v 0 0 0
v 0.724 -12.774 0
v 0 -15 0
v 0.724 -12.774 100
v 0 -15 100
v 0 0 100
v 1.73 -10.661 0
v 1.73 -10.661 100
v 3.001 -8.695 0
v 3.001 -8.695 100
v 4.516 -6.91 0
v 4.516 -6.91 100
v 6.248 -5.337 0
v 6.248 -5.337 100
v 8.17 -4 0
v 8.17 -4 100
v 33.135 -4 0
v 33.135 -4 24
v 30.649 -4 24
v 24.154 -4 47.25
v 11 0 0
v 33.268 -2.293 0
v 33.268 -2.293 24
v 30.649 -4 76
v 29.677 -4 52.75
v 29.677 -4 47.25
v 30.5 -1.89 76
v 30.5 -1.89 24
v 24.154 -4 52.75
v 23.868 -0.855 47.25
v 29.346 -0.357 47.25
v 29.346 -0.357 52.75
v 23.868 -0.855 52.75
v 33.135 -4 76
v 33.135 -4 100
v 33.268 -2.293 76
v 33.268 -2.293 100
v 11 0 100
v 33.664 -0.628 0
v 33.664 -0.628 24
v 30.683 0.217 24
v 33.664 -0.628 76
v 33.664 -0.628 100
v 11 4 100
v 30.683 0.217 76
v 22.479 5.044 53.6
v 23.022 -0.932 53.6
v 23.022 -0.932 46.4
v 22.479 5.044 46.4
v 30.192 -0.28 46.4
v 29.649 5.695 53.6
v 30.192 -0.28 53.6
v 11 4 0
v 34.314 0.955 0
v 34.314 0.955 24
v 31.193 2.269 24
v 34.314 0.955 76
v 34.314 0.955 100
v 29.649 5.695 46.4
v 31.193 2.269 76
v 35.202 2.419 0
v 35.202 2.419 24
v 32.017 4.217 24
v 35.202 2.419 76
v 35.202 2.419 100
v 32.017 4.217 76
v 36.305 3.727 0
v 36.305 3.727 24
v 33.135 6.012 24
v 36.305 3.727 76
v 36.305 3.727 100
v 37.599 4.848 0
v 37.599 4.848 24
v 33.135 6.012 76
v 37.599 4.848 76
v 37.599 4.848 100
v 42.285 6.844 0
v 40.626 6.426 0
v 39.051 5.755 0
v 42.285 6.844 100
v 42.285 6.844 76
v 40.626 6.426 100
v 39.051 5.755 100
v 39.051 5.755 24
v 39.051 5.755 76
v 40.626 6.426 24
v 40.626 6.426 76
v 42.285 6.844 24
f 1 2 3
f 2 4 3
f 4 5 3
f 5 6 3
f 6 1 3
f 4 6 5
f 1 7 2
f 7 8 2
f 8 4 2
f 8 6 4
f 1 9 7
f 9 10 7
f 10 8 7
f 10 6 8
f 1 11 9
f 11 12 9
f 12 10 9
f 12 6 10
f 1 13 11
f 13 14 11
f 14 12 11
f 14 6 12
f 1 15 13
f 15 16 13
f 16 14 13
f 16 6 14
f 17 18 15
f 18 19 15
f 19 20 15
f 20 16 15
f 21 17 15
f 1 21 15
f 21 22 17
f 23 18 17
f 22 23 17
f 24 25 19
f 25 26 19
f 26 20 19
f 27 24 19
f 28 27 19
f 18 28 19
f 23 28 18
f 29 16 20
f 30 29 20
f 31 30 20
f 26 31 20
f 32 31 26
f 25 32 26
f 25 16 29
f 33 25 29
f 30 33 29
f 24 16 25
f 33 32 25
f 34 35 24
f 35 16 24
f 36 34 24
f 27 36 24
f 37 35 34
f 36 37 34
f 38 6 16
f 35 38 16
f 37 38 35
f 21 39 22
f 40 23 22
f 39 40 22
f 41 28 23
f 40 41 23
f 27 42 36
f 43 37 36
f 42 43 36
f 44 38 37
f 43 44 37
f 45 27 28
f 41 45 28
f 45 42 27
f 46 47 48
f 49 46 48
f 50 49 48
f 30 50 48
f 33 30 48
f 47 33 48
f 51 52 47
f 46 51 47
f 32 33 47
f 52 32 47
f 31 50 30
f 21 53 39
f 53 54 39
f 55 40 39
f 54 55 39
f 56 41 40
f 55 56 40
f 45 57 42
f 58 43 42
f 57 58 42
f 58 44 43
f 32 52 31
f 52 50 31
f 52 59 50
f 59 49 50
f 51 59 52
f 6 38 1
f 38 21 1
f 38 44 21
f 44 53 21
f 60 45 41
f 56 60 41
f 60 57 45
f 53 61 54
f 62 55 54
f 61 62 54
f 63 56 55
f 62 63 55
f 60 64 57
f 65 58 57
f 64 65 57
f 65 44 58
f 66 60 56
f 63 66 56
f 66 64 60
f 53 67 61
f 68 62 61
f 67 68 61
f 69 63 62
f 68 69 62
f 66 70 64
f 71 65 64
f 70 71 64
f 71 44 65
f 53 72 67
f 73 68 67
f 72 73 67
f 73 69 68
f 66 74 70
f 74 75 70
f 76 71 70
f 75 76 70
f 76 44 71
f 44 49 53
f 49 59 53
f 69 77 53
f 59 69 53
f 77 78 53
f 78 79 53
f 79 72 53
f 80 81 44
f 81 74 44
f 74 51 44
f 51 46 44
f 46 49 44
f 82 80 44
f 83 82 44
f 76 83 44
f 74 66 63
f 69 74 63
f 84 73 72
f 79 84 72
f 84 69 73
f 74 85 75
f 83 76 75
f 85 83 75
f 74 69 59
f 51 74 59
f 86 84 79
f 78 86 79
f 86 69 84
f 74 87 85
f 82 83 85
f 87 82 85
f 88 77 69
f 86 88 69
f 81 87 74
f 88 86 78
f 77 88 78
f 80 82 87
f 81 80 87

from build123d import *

# Parameters (mm, degrees)
SALIENTE_EXTRUIR1_DEPTH     = 100
CORTAR_EXTRUIR2_DEPTH       = 26
CORTAR_EXTRUIR2_DEPTH_BACK  = 26
CROQUIS3_R                  = 13.5
CROQUIS11_W                 = 7.2
CROQUIS11_H                 = 7.2
CORTAR_EXTRUIR6_DEPTH       = 6
CROQUIS12_W                 = 5.5
CROQUIS12_H                 = 5.5
CORTAR_EXTRUIR7_DEPTH       = 6
CORTAR_EXTRUIR11_DEPTH      = 110.476024773
CORTAR_EXTRUIR11_DEPTH_BACK = 110.476024773
SALIENTE_EXTRUIR2_DEPTH     = 100


with BuildPart() as part:
    # Croquis1 → Saliente-Extruir1 (new body)
    with BuildSketch(Plane.XY):
        with BuildLine():
            Line((0, 0), (11, 0))
            Line((11, 0), (11, 4))
            Line((11, 4), (44, 7))
            Line((44, 7), (44, 4))
            ThreePointArc((44, 4), (39.101020514, 1.464101615), (38.343145751, -4))
            Line((38.343145751, -4), (0, -4))
            Line((0, -4), (0, 0))
        make_face()
    extrude(amount=SALIENTE_EXTRUIR1_DEPTH)

    # Croquis3 → Cortar-Extruir2 (cut, two sides: drawn at the far end of the back side and taken through both)
    with BuildSketch(Plane.XY.offset(50).offset(-CORTAR_EXTRUIR2_DEPTH_BACK)):
        with Locations((44, -2)):
            Circle(CROQUIS3_R)
    extrude(amount=CORTAR_EXTRUIR2_DEPTH + CORTAR_EXTRUIR2_DEPTH_BACK, mode=Mode.SUBTRACT)

    # Croquis11 → Cortar-Extruir6 (cut)
    with BuildSketch(Plane(origin=(-0.270491803, 2.975409836, 0), x_dir=(0.995893206467704, 0.09053574604251857, 0), z_dir=(-0.09053574604251857, 0.995893206467704, 0))):
        with Locations((26.442986434, -50)):
            Rectangle(CROQUIS11_W, CROQUIS11_H)
    extrude(amount=-CORTAR_EXTRUIR6_DEPTH, mode=Mode.SUBTRACT)

    # Croquis12 → Cortar-Extruir7 (cut)
    with BuildSketch(Plane(origin=(0.272722673, -2.999949403, 0), x_dir=(0.995893206467704, 0.09053574604251854, 0), z_dir=(-0.09053574604251854, 0.995893206467704, 0))):
        with Locations((26.442986434, -50)):
            Rectangle(CROQUIS12_W, CROQUIS12_H)
    extrude(amount=-CORTAR_EXTRUIR7_DEPTH, mode=Mode.SUBTRACT)

    # Croquis14 → Cortar-Extruir11 (cut, two sides: drawn at the far end of the back side and taken through both)
    with BuildSketch(Plane.XY.offset(100).offset(-CORTAR_EXTRUIR11_DEPTH_BACK)):
        with BuildLine():
            Line((33.134740511, -104.708323764), (33.134740511, -4))
            ThreePointArc((33.134740511, -4), (36.309024056, 3.730683407), (44, 7))
            Line((44, 7), (144.700675445, 8.241144726))
            Line((144.700675445, 8.241144726), (287.998687156, -133.301589954))
            Line((287.998687156, -133.301589954), (176.432752222, -246.251058444))
            Line((176.432752222, -246.251058444), (33.134740511, -104.708323764))
        make_face()
    extrude(amount=CORTAR_EXTRUIR11_DEPTH + CORTAR_EXTRUIR11_DEPTH_BACK, mode=Mode.SUBTRACT)

    # Croquis15 → Saliente-Extruir2 (add)
    with BuildSketch(Plane.XY.offset(100)):
        with BuildLine():
            Line((0, -4), (0, -15))
            ThreePointArc((0, -15), (3.001359468, -8.695211228), (8.169871019, -4))
            Line((8.169871019, -4), (0, -4))
        make_face()
    extrude(amount=-SALIENTE_EXTRUIR2_DEPTH)


solid = part.part
